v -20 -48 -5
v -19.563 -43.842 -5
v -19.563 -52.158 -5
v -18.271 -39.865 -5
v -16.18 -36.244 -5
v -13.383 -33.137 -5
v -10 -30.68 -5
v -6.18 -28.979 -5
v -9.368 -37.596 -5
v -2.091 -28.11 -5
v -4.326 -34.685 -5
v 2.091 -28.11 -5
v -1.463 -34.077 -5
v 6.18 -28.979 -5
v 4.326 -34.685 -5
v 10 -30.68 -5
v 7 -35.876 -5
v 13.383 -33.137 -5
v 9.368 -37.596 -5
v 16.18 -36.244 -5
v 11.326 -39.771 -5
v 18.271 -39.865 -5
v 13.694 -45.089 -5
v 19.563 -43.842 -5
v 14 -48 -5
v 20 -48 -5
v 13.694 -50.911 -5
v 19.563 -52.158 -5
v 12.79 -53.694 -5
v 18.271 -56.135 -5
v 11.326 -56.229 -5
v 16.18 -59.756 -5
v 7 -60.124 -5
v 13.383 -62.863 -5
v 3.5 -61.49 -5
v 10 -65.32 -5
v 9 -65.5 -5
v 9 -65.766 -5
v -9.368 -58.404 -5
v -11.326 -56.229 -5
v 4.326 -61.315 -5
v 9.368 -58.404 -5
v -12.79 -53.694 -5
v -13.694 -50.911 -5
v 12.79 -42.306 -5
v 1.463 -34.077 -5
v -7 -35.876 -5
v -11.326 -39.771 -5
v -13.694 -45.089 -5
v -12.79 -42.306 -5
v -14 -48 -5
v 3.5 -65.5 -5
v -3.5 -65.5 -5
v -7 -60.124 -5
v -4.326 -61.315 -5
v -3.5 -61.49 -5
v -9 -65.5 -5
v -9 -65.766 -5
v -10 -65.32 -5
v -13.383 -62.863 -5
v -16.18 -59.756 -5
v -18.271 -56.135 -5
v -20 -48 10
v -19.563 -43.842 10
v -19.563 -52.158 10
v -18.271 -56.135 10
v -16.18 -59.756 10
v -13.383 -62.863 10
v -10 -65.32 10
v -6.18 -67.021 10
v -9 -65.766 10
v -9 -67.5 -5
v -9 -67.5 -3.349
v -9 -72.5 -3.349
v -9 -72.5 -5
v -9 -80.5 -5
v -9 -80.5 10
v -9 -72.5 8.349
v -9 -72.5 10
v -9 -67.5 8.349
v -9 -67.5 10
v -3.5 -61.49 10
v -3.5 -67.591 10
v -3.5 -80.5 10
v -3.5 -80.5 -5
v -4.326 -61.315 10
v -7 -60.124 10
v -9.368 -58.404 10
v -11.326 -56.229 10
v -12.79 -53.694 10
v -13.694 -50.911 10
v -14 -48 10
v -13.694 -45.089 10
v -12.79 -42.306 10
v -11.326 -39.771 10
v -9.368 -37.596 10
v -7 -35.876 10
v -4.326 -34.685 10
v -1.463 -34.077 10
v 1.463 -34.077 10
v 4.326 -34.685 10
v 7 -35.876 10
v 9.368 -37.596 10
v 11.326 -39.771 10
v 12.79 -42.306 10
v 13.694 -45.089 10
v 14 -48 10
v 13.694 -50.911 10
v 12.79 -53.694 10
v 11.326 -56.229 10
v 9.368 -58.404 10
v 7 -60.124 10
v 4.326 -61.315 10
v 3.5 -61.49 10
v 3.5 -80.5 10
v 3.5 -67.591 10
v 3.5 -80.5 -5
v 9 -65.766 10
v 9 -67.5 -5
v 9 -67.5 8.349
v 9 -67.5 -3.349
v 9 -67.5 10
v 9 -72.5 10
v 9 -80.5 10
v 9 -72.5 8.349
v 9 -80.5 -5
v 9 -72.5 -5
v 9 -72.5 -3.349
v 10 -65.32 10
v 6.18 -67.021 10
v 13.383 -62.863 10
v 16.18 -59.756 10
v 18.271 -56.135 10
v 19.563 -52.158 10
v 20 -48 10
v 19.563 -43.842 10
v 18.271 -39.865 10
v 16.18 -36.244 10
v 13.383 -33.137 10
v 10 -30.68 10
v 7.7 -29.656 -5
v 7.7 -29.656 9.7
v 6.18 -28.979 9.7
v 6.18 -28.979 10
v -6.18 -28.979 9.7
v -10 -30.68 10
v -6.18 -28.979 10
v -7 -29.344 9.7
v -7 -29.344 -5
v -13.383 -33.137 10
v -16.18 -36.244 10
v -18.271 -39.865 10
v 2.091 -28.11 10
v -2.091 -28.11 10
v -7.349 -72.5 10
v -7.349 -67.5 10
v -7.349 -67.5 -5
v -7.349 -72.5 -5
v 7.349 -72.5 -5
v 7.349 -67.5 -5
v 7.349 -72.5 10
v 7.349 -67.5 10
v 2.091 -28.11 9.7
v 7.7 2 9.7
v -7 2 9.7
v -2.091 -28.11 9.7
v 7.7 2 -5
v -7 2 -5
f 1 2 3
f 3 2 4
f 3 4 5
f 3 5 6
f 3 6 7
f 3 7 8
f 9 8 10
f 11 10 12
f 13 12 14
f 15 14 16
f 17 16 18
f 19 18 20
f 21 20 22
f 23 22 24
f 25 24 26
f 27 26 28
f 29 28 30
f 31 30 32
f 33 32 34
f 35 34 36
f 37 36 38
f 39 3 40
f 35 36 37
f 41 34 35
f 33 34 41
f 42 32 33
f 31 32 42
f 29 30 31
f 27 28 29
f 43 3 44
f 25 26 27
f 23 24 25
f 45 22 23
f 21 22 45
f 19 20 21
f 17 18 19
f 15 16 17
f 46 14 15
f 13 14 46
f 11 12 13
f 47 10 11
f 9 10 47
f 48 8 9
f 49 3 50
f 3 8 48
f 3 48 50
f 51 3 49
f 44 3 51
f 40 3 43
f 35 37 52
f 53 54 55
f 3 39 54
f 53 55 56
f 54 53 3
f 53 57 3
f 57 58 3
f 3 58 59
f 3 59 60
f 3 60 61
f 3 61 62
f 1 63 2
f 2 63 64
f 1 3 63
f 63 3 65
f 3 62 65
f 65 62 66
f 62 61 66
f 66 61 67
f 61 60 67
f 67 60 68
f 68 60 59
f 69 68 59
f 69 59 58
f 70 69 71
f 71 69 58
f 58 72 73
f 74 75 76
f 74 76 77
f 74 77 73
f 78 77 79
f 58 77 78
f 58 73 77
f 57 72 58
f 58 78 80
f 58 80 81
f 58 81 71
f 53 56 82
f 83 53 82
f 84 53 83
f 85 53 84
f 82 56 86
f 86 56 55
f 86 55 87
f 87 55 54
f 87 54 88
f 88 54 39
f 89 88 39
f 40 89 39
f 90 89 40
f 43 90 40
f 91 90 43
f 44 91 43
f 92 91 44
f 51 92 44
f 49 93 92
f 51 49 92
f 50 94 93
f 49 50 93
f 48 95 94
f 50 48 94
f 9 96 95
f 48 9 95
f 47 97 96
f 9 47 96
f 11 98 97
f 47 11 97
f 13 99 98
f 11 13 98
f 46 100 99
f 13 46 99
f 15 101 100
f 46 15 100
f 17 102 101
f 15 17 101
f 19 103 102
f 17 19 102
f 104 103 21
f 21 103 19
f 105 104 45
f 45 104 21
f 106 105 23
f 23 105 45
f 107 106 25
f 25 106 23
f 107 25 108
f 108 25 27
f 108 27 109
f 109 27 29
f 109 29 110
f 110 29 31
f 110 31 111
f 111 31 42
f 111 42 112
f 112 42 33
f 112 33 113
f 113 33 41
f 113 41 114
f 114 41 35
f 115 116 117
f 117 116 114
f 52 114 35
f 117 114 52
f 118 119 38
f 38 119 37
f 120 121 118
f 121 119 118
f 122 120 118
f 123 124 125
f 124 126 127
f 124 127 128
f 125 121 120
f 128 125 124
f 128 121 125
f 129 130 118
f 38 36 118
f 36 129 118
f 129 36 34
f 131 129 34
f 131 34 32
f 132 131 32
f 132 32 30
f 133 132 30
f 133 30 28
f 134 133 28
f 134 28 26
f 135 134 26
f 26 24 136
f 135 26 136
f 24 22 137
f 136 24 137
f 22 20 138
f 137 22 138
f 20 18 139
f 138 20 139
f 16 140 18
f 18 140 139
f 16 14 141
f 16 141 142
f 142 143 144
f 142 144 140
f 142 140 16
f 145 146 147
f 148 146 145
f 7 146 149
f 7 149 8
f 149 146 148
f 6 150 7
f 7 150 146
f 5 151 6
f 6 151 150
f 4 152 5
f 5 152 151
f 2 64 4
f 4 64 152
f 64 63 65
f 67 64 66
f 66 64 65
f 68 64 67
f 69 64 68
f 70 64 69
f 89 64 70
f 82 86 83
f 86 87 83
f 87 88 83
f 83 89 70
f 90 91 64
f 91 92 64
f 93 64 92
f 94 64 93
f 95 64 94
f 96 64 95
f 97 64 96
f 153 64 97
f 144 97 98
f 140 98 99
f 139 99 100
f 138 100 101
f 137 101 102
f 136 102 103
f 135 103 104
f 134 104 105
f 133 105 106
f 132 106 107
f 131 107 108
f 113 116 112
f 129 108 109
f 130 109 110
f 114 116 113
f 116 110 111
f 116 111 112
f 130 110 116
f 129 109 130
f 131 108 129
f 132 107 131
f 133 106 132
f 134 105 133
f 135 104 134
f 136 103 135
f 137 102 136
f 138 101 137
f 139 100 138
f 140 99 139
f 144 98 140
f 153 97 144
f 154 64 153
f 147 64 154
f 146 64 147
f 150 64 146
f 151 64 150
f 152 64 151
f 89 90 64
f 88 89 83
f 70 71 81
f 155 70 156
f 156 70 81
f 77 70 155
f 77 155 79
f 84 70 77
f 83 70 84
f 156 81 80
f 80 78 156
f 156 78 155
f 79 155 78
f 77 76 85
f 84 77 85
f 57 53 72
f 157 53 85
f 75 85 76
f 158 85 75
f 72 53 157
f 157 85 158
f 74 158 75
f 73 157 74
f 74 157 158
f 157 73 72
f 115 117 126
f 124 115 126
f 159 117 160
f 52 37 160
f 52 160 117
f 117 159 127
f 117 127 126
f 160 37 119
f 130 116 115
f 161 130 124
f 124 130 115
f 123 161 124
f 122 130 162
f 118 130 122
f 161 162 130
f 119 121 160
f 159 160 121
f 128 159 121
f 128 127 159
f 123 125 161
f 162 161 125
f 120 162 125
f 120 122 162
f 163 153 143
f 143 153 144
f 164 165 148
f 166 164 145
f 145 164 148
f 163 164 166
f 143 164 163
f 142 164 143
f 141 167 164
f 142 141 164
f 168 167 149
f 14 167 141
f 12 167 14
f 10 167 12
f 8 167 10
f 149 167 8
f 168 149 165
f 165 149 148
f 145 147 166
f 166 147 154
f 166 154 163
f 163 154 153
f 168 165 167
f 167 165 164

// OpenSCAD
//rotace pro tisk
rotate ([90,0,0]){

difference() 
{
//odecet pro zarezy na utazeni





difference() 
{ 
// ode�et distan�n� mezery


union() 
{
// p�i�ten� patic pro sta�en�

difference() 
{ 
// diffference pro  otvor pro osazen� na ty�



union() 
{
// union pro v�lec napojen� na cylinder pro zasazen� do rukojeti

union() 
// union pro p�ipojen� cylinderu na v�lec
{


//cylinder(h = 14, r1 = 17, r2 = 10, center = true); 
//cylinder-nepouzite skoseni napojeni tyce pro usazeni v rukojeti

//zakladn�
translate([0,10,48]) rotate ([90,0,0])cylinder(h = 15, r=20);
// 40 je nastavena vnitrni prumer na 35 a vnejsi na 40
        
} 
#translate([-7,-5,-2]) cube([14.7,14.7,35], center = false);

//tloustka upnut� 15mm 
// umisteni ctverce pro dosazeni do rukojeti
//tloustka operky je 4mm + 14mm pro zesileni
//19 je posun nahoru a dolu/////35 vyska propojky
}
translate([0,10,48]) rotate ([90,0,0])cylinder(h = 20, r=14);
// odecitaci valec pro otvor na osazen� ty�e
}
translate([0,2.5,73]) rotate ([90,0,0]) cube(size = [18,15,15], center = true);
//sloupky pro utazeni
}
translate([0,10,75]) rotate ([0,0,0])cube(size = [7,50,40], center = true);
//odecet distancni mezery
}        


difference(){

#translate([0,3,70]) rotate ([0,0,45]) cube(size = [28,28,5], center = true);
#translate([0,2.5,70]) rotate ([0,0,45]) cube(size = [21,21,15], center = true);
}}  
//odecet od krychle je odectena mesi krychle cimz vznikne cosi aka ctvercovy toroid kterym je az odectena vlastni stahovaci operka





} 


//# pro zviditeleneni
//priblizeni shift+prav tlacitko mysi+ pousouvani dopredu/dozadu
